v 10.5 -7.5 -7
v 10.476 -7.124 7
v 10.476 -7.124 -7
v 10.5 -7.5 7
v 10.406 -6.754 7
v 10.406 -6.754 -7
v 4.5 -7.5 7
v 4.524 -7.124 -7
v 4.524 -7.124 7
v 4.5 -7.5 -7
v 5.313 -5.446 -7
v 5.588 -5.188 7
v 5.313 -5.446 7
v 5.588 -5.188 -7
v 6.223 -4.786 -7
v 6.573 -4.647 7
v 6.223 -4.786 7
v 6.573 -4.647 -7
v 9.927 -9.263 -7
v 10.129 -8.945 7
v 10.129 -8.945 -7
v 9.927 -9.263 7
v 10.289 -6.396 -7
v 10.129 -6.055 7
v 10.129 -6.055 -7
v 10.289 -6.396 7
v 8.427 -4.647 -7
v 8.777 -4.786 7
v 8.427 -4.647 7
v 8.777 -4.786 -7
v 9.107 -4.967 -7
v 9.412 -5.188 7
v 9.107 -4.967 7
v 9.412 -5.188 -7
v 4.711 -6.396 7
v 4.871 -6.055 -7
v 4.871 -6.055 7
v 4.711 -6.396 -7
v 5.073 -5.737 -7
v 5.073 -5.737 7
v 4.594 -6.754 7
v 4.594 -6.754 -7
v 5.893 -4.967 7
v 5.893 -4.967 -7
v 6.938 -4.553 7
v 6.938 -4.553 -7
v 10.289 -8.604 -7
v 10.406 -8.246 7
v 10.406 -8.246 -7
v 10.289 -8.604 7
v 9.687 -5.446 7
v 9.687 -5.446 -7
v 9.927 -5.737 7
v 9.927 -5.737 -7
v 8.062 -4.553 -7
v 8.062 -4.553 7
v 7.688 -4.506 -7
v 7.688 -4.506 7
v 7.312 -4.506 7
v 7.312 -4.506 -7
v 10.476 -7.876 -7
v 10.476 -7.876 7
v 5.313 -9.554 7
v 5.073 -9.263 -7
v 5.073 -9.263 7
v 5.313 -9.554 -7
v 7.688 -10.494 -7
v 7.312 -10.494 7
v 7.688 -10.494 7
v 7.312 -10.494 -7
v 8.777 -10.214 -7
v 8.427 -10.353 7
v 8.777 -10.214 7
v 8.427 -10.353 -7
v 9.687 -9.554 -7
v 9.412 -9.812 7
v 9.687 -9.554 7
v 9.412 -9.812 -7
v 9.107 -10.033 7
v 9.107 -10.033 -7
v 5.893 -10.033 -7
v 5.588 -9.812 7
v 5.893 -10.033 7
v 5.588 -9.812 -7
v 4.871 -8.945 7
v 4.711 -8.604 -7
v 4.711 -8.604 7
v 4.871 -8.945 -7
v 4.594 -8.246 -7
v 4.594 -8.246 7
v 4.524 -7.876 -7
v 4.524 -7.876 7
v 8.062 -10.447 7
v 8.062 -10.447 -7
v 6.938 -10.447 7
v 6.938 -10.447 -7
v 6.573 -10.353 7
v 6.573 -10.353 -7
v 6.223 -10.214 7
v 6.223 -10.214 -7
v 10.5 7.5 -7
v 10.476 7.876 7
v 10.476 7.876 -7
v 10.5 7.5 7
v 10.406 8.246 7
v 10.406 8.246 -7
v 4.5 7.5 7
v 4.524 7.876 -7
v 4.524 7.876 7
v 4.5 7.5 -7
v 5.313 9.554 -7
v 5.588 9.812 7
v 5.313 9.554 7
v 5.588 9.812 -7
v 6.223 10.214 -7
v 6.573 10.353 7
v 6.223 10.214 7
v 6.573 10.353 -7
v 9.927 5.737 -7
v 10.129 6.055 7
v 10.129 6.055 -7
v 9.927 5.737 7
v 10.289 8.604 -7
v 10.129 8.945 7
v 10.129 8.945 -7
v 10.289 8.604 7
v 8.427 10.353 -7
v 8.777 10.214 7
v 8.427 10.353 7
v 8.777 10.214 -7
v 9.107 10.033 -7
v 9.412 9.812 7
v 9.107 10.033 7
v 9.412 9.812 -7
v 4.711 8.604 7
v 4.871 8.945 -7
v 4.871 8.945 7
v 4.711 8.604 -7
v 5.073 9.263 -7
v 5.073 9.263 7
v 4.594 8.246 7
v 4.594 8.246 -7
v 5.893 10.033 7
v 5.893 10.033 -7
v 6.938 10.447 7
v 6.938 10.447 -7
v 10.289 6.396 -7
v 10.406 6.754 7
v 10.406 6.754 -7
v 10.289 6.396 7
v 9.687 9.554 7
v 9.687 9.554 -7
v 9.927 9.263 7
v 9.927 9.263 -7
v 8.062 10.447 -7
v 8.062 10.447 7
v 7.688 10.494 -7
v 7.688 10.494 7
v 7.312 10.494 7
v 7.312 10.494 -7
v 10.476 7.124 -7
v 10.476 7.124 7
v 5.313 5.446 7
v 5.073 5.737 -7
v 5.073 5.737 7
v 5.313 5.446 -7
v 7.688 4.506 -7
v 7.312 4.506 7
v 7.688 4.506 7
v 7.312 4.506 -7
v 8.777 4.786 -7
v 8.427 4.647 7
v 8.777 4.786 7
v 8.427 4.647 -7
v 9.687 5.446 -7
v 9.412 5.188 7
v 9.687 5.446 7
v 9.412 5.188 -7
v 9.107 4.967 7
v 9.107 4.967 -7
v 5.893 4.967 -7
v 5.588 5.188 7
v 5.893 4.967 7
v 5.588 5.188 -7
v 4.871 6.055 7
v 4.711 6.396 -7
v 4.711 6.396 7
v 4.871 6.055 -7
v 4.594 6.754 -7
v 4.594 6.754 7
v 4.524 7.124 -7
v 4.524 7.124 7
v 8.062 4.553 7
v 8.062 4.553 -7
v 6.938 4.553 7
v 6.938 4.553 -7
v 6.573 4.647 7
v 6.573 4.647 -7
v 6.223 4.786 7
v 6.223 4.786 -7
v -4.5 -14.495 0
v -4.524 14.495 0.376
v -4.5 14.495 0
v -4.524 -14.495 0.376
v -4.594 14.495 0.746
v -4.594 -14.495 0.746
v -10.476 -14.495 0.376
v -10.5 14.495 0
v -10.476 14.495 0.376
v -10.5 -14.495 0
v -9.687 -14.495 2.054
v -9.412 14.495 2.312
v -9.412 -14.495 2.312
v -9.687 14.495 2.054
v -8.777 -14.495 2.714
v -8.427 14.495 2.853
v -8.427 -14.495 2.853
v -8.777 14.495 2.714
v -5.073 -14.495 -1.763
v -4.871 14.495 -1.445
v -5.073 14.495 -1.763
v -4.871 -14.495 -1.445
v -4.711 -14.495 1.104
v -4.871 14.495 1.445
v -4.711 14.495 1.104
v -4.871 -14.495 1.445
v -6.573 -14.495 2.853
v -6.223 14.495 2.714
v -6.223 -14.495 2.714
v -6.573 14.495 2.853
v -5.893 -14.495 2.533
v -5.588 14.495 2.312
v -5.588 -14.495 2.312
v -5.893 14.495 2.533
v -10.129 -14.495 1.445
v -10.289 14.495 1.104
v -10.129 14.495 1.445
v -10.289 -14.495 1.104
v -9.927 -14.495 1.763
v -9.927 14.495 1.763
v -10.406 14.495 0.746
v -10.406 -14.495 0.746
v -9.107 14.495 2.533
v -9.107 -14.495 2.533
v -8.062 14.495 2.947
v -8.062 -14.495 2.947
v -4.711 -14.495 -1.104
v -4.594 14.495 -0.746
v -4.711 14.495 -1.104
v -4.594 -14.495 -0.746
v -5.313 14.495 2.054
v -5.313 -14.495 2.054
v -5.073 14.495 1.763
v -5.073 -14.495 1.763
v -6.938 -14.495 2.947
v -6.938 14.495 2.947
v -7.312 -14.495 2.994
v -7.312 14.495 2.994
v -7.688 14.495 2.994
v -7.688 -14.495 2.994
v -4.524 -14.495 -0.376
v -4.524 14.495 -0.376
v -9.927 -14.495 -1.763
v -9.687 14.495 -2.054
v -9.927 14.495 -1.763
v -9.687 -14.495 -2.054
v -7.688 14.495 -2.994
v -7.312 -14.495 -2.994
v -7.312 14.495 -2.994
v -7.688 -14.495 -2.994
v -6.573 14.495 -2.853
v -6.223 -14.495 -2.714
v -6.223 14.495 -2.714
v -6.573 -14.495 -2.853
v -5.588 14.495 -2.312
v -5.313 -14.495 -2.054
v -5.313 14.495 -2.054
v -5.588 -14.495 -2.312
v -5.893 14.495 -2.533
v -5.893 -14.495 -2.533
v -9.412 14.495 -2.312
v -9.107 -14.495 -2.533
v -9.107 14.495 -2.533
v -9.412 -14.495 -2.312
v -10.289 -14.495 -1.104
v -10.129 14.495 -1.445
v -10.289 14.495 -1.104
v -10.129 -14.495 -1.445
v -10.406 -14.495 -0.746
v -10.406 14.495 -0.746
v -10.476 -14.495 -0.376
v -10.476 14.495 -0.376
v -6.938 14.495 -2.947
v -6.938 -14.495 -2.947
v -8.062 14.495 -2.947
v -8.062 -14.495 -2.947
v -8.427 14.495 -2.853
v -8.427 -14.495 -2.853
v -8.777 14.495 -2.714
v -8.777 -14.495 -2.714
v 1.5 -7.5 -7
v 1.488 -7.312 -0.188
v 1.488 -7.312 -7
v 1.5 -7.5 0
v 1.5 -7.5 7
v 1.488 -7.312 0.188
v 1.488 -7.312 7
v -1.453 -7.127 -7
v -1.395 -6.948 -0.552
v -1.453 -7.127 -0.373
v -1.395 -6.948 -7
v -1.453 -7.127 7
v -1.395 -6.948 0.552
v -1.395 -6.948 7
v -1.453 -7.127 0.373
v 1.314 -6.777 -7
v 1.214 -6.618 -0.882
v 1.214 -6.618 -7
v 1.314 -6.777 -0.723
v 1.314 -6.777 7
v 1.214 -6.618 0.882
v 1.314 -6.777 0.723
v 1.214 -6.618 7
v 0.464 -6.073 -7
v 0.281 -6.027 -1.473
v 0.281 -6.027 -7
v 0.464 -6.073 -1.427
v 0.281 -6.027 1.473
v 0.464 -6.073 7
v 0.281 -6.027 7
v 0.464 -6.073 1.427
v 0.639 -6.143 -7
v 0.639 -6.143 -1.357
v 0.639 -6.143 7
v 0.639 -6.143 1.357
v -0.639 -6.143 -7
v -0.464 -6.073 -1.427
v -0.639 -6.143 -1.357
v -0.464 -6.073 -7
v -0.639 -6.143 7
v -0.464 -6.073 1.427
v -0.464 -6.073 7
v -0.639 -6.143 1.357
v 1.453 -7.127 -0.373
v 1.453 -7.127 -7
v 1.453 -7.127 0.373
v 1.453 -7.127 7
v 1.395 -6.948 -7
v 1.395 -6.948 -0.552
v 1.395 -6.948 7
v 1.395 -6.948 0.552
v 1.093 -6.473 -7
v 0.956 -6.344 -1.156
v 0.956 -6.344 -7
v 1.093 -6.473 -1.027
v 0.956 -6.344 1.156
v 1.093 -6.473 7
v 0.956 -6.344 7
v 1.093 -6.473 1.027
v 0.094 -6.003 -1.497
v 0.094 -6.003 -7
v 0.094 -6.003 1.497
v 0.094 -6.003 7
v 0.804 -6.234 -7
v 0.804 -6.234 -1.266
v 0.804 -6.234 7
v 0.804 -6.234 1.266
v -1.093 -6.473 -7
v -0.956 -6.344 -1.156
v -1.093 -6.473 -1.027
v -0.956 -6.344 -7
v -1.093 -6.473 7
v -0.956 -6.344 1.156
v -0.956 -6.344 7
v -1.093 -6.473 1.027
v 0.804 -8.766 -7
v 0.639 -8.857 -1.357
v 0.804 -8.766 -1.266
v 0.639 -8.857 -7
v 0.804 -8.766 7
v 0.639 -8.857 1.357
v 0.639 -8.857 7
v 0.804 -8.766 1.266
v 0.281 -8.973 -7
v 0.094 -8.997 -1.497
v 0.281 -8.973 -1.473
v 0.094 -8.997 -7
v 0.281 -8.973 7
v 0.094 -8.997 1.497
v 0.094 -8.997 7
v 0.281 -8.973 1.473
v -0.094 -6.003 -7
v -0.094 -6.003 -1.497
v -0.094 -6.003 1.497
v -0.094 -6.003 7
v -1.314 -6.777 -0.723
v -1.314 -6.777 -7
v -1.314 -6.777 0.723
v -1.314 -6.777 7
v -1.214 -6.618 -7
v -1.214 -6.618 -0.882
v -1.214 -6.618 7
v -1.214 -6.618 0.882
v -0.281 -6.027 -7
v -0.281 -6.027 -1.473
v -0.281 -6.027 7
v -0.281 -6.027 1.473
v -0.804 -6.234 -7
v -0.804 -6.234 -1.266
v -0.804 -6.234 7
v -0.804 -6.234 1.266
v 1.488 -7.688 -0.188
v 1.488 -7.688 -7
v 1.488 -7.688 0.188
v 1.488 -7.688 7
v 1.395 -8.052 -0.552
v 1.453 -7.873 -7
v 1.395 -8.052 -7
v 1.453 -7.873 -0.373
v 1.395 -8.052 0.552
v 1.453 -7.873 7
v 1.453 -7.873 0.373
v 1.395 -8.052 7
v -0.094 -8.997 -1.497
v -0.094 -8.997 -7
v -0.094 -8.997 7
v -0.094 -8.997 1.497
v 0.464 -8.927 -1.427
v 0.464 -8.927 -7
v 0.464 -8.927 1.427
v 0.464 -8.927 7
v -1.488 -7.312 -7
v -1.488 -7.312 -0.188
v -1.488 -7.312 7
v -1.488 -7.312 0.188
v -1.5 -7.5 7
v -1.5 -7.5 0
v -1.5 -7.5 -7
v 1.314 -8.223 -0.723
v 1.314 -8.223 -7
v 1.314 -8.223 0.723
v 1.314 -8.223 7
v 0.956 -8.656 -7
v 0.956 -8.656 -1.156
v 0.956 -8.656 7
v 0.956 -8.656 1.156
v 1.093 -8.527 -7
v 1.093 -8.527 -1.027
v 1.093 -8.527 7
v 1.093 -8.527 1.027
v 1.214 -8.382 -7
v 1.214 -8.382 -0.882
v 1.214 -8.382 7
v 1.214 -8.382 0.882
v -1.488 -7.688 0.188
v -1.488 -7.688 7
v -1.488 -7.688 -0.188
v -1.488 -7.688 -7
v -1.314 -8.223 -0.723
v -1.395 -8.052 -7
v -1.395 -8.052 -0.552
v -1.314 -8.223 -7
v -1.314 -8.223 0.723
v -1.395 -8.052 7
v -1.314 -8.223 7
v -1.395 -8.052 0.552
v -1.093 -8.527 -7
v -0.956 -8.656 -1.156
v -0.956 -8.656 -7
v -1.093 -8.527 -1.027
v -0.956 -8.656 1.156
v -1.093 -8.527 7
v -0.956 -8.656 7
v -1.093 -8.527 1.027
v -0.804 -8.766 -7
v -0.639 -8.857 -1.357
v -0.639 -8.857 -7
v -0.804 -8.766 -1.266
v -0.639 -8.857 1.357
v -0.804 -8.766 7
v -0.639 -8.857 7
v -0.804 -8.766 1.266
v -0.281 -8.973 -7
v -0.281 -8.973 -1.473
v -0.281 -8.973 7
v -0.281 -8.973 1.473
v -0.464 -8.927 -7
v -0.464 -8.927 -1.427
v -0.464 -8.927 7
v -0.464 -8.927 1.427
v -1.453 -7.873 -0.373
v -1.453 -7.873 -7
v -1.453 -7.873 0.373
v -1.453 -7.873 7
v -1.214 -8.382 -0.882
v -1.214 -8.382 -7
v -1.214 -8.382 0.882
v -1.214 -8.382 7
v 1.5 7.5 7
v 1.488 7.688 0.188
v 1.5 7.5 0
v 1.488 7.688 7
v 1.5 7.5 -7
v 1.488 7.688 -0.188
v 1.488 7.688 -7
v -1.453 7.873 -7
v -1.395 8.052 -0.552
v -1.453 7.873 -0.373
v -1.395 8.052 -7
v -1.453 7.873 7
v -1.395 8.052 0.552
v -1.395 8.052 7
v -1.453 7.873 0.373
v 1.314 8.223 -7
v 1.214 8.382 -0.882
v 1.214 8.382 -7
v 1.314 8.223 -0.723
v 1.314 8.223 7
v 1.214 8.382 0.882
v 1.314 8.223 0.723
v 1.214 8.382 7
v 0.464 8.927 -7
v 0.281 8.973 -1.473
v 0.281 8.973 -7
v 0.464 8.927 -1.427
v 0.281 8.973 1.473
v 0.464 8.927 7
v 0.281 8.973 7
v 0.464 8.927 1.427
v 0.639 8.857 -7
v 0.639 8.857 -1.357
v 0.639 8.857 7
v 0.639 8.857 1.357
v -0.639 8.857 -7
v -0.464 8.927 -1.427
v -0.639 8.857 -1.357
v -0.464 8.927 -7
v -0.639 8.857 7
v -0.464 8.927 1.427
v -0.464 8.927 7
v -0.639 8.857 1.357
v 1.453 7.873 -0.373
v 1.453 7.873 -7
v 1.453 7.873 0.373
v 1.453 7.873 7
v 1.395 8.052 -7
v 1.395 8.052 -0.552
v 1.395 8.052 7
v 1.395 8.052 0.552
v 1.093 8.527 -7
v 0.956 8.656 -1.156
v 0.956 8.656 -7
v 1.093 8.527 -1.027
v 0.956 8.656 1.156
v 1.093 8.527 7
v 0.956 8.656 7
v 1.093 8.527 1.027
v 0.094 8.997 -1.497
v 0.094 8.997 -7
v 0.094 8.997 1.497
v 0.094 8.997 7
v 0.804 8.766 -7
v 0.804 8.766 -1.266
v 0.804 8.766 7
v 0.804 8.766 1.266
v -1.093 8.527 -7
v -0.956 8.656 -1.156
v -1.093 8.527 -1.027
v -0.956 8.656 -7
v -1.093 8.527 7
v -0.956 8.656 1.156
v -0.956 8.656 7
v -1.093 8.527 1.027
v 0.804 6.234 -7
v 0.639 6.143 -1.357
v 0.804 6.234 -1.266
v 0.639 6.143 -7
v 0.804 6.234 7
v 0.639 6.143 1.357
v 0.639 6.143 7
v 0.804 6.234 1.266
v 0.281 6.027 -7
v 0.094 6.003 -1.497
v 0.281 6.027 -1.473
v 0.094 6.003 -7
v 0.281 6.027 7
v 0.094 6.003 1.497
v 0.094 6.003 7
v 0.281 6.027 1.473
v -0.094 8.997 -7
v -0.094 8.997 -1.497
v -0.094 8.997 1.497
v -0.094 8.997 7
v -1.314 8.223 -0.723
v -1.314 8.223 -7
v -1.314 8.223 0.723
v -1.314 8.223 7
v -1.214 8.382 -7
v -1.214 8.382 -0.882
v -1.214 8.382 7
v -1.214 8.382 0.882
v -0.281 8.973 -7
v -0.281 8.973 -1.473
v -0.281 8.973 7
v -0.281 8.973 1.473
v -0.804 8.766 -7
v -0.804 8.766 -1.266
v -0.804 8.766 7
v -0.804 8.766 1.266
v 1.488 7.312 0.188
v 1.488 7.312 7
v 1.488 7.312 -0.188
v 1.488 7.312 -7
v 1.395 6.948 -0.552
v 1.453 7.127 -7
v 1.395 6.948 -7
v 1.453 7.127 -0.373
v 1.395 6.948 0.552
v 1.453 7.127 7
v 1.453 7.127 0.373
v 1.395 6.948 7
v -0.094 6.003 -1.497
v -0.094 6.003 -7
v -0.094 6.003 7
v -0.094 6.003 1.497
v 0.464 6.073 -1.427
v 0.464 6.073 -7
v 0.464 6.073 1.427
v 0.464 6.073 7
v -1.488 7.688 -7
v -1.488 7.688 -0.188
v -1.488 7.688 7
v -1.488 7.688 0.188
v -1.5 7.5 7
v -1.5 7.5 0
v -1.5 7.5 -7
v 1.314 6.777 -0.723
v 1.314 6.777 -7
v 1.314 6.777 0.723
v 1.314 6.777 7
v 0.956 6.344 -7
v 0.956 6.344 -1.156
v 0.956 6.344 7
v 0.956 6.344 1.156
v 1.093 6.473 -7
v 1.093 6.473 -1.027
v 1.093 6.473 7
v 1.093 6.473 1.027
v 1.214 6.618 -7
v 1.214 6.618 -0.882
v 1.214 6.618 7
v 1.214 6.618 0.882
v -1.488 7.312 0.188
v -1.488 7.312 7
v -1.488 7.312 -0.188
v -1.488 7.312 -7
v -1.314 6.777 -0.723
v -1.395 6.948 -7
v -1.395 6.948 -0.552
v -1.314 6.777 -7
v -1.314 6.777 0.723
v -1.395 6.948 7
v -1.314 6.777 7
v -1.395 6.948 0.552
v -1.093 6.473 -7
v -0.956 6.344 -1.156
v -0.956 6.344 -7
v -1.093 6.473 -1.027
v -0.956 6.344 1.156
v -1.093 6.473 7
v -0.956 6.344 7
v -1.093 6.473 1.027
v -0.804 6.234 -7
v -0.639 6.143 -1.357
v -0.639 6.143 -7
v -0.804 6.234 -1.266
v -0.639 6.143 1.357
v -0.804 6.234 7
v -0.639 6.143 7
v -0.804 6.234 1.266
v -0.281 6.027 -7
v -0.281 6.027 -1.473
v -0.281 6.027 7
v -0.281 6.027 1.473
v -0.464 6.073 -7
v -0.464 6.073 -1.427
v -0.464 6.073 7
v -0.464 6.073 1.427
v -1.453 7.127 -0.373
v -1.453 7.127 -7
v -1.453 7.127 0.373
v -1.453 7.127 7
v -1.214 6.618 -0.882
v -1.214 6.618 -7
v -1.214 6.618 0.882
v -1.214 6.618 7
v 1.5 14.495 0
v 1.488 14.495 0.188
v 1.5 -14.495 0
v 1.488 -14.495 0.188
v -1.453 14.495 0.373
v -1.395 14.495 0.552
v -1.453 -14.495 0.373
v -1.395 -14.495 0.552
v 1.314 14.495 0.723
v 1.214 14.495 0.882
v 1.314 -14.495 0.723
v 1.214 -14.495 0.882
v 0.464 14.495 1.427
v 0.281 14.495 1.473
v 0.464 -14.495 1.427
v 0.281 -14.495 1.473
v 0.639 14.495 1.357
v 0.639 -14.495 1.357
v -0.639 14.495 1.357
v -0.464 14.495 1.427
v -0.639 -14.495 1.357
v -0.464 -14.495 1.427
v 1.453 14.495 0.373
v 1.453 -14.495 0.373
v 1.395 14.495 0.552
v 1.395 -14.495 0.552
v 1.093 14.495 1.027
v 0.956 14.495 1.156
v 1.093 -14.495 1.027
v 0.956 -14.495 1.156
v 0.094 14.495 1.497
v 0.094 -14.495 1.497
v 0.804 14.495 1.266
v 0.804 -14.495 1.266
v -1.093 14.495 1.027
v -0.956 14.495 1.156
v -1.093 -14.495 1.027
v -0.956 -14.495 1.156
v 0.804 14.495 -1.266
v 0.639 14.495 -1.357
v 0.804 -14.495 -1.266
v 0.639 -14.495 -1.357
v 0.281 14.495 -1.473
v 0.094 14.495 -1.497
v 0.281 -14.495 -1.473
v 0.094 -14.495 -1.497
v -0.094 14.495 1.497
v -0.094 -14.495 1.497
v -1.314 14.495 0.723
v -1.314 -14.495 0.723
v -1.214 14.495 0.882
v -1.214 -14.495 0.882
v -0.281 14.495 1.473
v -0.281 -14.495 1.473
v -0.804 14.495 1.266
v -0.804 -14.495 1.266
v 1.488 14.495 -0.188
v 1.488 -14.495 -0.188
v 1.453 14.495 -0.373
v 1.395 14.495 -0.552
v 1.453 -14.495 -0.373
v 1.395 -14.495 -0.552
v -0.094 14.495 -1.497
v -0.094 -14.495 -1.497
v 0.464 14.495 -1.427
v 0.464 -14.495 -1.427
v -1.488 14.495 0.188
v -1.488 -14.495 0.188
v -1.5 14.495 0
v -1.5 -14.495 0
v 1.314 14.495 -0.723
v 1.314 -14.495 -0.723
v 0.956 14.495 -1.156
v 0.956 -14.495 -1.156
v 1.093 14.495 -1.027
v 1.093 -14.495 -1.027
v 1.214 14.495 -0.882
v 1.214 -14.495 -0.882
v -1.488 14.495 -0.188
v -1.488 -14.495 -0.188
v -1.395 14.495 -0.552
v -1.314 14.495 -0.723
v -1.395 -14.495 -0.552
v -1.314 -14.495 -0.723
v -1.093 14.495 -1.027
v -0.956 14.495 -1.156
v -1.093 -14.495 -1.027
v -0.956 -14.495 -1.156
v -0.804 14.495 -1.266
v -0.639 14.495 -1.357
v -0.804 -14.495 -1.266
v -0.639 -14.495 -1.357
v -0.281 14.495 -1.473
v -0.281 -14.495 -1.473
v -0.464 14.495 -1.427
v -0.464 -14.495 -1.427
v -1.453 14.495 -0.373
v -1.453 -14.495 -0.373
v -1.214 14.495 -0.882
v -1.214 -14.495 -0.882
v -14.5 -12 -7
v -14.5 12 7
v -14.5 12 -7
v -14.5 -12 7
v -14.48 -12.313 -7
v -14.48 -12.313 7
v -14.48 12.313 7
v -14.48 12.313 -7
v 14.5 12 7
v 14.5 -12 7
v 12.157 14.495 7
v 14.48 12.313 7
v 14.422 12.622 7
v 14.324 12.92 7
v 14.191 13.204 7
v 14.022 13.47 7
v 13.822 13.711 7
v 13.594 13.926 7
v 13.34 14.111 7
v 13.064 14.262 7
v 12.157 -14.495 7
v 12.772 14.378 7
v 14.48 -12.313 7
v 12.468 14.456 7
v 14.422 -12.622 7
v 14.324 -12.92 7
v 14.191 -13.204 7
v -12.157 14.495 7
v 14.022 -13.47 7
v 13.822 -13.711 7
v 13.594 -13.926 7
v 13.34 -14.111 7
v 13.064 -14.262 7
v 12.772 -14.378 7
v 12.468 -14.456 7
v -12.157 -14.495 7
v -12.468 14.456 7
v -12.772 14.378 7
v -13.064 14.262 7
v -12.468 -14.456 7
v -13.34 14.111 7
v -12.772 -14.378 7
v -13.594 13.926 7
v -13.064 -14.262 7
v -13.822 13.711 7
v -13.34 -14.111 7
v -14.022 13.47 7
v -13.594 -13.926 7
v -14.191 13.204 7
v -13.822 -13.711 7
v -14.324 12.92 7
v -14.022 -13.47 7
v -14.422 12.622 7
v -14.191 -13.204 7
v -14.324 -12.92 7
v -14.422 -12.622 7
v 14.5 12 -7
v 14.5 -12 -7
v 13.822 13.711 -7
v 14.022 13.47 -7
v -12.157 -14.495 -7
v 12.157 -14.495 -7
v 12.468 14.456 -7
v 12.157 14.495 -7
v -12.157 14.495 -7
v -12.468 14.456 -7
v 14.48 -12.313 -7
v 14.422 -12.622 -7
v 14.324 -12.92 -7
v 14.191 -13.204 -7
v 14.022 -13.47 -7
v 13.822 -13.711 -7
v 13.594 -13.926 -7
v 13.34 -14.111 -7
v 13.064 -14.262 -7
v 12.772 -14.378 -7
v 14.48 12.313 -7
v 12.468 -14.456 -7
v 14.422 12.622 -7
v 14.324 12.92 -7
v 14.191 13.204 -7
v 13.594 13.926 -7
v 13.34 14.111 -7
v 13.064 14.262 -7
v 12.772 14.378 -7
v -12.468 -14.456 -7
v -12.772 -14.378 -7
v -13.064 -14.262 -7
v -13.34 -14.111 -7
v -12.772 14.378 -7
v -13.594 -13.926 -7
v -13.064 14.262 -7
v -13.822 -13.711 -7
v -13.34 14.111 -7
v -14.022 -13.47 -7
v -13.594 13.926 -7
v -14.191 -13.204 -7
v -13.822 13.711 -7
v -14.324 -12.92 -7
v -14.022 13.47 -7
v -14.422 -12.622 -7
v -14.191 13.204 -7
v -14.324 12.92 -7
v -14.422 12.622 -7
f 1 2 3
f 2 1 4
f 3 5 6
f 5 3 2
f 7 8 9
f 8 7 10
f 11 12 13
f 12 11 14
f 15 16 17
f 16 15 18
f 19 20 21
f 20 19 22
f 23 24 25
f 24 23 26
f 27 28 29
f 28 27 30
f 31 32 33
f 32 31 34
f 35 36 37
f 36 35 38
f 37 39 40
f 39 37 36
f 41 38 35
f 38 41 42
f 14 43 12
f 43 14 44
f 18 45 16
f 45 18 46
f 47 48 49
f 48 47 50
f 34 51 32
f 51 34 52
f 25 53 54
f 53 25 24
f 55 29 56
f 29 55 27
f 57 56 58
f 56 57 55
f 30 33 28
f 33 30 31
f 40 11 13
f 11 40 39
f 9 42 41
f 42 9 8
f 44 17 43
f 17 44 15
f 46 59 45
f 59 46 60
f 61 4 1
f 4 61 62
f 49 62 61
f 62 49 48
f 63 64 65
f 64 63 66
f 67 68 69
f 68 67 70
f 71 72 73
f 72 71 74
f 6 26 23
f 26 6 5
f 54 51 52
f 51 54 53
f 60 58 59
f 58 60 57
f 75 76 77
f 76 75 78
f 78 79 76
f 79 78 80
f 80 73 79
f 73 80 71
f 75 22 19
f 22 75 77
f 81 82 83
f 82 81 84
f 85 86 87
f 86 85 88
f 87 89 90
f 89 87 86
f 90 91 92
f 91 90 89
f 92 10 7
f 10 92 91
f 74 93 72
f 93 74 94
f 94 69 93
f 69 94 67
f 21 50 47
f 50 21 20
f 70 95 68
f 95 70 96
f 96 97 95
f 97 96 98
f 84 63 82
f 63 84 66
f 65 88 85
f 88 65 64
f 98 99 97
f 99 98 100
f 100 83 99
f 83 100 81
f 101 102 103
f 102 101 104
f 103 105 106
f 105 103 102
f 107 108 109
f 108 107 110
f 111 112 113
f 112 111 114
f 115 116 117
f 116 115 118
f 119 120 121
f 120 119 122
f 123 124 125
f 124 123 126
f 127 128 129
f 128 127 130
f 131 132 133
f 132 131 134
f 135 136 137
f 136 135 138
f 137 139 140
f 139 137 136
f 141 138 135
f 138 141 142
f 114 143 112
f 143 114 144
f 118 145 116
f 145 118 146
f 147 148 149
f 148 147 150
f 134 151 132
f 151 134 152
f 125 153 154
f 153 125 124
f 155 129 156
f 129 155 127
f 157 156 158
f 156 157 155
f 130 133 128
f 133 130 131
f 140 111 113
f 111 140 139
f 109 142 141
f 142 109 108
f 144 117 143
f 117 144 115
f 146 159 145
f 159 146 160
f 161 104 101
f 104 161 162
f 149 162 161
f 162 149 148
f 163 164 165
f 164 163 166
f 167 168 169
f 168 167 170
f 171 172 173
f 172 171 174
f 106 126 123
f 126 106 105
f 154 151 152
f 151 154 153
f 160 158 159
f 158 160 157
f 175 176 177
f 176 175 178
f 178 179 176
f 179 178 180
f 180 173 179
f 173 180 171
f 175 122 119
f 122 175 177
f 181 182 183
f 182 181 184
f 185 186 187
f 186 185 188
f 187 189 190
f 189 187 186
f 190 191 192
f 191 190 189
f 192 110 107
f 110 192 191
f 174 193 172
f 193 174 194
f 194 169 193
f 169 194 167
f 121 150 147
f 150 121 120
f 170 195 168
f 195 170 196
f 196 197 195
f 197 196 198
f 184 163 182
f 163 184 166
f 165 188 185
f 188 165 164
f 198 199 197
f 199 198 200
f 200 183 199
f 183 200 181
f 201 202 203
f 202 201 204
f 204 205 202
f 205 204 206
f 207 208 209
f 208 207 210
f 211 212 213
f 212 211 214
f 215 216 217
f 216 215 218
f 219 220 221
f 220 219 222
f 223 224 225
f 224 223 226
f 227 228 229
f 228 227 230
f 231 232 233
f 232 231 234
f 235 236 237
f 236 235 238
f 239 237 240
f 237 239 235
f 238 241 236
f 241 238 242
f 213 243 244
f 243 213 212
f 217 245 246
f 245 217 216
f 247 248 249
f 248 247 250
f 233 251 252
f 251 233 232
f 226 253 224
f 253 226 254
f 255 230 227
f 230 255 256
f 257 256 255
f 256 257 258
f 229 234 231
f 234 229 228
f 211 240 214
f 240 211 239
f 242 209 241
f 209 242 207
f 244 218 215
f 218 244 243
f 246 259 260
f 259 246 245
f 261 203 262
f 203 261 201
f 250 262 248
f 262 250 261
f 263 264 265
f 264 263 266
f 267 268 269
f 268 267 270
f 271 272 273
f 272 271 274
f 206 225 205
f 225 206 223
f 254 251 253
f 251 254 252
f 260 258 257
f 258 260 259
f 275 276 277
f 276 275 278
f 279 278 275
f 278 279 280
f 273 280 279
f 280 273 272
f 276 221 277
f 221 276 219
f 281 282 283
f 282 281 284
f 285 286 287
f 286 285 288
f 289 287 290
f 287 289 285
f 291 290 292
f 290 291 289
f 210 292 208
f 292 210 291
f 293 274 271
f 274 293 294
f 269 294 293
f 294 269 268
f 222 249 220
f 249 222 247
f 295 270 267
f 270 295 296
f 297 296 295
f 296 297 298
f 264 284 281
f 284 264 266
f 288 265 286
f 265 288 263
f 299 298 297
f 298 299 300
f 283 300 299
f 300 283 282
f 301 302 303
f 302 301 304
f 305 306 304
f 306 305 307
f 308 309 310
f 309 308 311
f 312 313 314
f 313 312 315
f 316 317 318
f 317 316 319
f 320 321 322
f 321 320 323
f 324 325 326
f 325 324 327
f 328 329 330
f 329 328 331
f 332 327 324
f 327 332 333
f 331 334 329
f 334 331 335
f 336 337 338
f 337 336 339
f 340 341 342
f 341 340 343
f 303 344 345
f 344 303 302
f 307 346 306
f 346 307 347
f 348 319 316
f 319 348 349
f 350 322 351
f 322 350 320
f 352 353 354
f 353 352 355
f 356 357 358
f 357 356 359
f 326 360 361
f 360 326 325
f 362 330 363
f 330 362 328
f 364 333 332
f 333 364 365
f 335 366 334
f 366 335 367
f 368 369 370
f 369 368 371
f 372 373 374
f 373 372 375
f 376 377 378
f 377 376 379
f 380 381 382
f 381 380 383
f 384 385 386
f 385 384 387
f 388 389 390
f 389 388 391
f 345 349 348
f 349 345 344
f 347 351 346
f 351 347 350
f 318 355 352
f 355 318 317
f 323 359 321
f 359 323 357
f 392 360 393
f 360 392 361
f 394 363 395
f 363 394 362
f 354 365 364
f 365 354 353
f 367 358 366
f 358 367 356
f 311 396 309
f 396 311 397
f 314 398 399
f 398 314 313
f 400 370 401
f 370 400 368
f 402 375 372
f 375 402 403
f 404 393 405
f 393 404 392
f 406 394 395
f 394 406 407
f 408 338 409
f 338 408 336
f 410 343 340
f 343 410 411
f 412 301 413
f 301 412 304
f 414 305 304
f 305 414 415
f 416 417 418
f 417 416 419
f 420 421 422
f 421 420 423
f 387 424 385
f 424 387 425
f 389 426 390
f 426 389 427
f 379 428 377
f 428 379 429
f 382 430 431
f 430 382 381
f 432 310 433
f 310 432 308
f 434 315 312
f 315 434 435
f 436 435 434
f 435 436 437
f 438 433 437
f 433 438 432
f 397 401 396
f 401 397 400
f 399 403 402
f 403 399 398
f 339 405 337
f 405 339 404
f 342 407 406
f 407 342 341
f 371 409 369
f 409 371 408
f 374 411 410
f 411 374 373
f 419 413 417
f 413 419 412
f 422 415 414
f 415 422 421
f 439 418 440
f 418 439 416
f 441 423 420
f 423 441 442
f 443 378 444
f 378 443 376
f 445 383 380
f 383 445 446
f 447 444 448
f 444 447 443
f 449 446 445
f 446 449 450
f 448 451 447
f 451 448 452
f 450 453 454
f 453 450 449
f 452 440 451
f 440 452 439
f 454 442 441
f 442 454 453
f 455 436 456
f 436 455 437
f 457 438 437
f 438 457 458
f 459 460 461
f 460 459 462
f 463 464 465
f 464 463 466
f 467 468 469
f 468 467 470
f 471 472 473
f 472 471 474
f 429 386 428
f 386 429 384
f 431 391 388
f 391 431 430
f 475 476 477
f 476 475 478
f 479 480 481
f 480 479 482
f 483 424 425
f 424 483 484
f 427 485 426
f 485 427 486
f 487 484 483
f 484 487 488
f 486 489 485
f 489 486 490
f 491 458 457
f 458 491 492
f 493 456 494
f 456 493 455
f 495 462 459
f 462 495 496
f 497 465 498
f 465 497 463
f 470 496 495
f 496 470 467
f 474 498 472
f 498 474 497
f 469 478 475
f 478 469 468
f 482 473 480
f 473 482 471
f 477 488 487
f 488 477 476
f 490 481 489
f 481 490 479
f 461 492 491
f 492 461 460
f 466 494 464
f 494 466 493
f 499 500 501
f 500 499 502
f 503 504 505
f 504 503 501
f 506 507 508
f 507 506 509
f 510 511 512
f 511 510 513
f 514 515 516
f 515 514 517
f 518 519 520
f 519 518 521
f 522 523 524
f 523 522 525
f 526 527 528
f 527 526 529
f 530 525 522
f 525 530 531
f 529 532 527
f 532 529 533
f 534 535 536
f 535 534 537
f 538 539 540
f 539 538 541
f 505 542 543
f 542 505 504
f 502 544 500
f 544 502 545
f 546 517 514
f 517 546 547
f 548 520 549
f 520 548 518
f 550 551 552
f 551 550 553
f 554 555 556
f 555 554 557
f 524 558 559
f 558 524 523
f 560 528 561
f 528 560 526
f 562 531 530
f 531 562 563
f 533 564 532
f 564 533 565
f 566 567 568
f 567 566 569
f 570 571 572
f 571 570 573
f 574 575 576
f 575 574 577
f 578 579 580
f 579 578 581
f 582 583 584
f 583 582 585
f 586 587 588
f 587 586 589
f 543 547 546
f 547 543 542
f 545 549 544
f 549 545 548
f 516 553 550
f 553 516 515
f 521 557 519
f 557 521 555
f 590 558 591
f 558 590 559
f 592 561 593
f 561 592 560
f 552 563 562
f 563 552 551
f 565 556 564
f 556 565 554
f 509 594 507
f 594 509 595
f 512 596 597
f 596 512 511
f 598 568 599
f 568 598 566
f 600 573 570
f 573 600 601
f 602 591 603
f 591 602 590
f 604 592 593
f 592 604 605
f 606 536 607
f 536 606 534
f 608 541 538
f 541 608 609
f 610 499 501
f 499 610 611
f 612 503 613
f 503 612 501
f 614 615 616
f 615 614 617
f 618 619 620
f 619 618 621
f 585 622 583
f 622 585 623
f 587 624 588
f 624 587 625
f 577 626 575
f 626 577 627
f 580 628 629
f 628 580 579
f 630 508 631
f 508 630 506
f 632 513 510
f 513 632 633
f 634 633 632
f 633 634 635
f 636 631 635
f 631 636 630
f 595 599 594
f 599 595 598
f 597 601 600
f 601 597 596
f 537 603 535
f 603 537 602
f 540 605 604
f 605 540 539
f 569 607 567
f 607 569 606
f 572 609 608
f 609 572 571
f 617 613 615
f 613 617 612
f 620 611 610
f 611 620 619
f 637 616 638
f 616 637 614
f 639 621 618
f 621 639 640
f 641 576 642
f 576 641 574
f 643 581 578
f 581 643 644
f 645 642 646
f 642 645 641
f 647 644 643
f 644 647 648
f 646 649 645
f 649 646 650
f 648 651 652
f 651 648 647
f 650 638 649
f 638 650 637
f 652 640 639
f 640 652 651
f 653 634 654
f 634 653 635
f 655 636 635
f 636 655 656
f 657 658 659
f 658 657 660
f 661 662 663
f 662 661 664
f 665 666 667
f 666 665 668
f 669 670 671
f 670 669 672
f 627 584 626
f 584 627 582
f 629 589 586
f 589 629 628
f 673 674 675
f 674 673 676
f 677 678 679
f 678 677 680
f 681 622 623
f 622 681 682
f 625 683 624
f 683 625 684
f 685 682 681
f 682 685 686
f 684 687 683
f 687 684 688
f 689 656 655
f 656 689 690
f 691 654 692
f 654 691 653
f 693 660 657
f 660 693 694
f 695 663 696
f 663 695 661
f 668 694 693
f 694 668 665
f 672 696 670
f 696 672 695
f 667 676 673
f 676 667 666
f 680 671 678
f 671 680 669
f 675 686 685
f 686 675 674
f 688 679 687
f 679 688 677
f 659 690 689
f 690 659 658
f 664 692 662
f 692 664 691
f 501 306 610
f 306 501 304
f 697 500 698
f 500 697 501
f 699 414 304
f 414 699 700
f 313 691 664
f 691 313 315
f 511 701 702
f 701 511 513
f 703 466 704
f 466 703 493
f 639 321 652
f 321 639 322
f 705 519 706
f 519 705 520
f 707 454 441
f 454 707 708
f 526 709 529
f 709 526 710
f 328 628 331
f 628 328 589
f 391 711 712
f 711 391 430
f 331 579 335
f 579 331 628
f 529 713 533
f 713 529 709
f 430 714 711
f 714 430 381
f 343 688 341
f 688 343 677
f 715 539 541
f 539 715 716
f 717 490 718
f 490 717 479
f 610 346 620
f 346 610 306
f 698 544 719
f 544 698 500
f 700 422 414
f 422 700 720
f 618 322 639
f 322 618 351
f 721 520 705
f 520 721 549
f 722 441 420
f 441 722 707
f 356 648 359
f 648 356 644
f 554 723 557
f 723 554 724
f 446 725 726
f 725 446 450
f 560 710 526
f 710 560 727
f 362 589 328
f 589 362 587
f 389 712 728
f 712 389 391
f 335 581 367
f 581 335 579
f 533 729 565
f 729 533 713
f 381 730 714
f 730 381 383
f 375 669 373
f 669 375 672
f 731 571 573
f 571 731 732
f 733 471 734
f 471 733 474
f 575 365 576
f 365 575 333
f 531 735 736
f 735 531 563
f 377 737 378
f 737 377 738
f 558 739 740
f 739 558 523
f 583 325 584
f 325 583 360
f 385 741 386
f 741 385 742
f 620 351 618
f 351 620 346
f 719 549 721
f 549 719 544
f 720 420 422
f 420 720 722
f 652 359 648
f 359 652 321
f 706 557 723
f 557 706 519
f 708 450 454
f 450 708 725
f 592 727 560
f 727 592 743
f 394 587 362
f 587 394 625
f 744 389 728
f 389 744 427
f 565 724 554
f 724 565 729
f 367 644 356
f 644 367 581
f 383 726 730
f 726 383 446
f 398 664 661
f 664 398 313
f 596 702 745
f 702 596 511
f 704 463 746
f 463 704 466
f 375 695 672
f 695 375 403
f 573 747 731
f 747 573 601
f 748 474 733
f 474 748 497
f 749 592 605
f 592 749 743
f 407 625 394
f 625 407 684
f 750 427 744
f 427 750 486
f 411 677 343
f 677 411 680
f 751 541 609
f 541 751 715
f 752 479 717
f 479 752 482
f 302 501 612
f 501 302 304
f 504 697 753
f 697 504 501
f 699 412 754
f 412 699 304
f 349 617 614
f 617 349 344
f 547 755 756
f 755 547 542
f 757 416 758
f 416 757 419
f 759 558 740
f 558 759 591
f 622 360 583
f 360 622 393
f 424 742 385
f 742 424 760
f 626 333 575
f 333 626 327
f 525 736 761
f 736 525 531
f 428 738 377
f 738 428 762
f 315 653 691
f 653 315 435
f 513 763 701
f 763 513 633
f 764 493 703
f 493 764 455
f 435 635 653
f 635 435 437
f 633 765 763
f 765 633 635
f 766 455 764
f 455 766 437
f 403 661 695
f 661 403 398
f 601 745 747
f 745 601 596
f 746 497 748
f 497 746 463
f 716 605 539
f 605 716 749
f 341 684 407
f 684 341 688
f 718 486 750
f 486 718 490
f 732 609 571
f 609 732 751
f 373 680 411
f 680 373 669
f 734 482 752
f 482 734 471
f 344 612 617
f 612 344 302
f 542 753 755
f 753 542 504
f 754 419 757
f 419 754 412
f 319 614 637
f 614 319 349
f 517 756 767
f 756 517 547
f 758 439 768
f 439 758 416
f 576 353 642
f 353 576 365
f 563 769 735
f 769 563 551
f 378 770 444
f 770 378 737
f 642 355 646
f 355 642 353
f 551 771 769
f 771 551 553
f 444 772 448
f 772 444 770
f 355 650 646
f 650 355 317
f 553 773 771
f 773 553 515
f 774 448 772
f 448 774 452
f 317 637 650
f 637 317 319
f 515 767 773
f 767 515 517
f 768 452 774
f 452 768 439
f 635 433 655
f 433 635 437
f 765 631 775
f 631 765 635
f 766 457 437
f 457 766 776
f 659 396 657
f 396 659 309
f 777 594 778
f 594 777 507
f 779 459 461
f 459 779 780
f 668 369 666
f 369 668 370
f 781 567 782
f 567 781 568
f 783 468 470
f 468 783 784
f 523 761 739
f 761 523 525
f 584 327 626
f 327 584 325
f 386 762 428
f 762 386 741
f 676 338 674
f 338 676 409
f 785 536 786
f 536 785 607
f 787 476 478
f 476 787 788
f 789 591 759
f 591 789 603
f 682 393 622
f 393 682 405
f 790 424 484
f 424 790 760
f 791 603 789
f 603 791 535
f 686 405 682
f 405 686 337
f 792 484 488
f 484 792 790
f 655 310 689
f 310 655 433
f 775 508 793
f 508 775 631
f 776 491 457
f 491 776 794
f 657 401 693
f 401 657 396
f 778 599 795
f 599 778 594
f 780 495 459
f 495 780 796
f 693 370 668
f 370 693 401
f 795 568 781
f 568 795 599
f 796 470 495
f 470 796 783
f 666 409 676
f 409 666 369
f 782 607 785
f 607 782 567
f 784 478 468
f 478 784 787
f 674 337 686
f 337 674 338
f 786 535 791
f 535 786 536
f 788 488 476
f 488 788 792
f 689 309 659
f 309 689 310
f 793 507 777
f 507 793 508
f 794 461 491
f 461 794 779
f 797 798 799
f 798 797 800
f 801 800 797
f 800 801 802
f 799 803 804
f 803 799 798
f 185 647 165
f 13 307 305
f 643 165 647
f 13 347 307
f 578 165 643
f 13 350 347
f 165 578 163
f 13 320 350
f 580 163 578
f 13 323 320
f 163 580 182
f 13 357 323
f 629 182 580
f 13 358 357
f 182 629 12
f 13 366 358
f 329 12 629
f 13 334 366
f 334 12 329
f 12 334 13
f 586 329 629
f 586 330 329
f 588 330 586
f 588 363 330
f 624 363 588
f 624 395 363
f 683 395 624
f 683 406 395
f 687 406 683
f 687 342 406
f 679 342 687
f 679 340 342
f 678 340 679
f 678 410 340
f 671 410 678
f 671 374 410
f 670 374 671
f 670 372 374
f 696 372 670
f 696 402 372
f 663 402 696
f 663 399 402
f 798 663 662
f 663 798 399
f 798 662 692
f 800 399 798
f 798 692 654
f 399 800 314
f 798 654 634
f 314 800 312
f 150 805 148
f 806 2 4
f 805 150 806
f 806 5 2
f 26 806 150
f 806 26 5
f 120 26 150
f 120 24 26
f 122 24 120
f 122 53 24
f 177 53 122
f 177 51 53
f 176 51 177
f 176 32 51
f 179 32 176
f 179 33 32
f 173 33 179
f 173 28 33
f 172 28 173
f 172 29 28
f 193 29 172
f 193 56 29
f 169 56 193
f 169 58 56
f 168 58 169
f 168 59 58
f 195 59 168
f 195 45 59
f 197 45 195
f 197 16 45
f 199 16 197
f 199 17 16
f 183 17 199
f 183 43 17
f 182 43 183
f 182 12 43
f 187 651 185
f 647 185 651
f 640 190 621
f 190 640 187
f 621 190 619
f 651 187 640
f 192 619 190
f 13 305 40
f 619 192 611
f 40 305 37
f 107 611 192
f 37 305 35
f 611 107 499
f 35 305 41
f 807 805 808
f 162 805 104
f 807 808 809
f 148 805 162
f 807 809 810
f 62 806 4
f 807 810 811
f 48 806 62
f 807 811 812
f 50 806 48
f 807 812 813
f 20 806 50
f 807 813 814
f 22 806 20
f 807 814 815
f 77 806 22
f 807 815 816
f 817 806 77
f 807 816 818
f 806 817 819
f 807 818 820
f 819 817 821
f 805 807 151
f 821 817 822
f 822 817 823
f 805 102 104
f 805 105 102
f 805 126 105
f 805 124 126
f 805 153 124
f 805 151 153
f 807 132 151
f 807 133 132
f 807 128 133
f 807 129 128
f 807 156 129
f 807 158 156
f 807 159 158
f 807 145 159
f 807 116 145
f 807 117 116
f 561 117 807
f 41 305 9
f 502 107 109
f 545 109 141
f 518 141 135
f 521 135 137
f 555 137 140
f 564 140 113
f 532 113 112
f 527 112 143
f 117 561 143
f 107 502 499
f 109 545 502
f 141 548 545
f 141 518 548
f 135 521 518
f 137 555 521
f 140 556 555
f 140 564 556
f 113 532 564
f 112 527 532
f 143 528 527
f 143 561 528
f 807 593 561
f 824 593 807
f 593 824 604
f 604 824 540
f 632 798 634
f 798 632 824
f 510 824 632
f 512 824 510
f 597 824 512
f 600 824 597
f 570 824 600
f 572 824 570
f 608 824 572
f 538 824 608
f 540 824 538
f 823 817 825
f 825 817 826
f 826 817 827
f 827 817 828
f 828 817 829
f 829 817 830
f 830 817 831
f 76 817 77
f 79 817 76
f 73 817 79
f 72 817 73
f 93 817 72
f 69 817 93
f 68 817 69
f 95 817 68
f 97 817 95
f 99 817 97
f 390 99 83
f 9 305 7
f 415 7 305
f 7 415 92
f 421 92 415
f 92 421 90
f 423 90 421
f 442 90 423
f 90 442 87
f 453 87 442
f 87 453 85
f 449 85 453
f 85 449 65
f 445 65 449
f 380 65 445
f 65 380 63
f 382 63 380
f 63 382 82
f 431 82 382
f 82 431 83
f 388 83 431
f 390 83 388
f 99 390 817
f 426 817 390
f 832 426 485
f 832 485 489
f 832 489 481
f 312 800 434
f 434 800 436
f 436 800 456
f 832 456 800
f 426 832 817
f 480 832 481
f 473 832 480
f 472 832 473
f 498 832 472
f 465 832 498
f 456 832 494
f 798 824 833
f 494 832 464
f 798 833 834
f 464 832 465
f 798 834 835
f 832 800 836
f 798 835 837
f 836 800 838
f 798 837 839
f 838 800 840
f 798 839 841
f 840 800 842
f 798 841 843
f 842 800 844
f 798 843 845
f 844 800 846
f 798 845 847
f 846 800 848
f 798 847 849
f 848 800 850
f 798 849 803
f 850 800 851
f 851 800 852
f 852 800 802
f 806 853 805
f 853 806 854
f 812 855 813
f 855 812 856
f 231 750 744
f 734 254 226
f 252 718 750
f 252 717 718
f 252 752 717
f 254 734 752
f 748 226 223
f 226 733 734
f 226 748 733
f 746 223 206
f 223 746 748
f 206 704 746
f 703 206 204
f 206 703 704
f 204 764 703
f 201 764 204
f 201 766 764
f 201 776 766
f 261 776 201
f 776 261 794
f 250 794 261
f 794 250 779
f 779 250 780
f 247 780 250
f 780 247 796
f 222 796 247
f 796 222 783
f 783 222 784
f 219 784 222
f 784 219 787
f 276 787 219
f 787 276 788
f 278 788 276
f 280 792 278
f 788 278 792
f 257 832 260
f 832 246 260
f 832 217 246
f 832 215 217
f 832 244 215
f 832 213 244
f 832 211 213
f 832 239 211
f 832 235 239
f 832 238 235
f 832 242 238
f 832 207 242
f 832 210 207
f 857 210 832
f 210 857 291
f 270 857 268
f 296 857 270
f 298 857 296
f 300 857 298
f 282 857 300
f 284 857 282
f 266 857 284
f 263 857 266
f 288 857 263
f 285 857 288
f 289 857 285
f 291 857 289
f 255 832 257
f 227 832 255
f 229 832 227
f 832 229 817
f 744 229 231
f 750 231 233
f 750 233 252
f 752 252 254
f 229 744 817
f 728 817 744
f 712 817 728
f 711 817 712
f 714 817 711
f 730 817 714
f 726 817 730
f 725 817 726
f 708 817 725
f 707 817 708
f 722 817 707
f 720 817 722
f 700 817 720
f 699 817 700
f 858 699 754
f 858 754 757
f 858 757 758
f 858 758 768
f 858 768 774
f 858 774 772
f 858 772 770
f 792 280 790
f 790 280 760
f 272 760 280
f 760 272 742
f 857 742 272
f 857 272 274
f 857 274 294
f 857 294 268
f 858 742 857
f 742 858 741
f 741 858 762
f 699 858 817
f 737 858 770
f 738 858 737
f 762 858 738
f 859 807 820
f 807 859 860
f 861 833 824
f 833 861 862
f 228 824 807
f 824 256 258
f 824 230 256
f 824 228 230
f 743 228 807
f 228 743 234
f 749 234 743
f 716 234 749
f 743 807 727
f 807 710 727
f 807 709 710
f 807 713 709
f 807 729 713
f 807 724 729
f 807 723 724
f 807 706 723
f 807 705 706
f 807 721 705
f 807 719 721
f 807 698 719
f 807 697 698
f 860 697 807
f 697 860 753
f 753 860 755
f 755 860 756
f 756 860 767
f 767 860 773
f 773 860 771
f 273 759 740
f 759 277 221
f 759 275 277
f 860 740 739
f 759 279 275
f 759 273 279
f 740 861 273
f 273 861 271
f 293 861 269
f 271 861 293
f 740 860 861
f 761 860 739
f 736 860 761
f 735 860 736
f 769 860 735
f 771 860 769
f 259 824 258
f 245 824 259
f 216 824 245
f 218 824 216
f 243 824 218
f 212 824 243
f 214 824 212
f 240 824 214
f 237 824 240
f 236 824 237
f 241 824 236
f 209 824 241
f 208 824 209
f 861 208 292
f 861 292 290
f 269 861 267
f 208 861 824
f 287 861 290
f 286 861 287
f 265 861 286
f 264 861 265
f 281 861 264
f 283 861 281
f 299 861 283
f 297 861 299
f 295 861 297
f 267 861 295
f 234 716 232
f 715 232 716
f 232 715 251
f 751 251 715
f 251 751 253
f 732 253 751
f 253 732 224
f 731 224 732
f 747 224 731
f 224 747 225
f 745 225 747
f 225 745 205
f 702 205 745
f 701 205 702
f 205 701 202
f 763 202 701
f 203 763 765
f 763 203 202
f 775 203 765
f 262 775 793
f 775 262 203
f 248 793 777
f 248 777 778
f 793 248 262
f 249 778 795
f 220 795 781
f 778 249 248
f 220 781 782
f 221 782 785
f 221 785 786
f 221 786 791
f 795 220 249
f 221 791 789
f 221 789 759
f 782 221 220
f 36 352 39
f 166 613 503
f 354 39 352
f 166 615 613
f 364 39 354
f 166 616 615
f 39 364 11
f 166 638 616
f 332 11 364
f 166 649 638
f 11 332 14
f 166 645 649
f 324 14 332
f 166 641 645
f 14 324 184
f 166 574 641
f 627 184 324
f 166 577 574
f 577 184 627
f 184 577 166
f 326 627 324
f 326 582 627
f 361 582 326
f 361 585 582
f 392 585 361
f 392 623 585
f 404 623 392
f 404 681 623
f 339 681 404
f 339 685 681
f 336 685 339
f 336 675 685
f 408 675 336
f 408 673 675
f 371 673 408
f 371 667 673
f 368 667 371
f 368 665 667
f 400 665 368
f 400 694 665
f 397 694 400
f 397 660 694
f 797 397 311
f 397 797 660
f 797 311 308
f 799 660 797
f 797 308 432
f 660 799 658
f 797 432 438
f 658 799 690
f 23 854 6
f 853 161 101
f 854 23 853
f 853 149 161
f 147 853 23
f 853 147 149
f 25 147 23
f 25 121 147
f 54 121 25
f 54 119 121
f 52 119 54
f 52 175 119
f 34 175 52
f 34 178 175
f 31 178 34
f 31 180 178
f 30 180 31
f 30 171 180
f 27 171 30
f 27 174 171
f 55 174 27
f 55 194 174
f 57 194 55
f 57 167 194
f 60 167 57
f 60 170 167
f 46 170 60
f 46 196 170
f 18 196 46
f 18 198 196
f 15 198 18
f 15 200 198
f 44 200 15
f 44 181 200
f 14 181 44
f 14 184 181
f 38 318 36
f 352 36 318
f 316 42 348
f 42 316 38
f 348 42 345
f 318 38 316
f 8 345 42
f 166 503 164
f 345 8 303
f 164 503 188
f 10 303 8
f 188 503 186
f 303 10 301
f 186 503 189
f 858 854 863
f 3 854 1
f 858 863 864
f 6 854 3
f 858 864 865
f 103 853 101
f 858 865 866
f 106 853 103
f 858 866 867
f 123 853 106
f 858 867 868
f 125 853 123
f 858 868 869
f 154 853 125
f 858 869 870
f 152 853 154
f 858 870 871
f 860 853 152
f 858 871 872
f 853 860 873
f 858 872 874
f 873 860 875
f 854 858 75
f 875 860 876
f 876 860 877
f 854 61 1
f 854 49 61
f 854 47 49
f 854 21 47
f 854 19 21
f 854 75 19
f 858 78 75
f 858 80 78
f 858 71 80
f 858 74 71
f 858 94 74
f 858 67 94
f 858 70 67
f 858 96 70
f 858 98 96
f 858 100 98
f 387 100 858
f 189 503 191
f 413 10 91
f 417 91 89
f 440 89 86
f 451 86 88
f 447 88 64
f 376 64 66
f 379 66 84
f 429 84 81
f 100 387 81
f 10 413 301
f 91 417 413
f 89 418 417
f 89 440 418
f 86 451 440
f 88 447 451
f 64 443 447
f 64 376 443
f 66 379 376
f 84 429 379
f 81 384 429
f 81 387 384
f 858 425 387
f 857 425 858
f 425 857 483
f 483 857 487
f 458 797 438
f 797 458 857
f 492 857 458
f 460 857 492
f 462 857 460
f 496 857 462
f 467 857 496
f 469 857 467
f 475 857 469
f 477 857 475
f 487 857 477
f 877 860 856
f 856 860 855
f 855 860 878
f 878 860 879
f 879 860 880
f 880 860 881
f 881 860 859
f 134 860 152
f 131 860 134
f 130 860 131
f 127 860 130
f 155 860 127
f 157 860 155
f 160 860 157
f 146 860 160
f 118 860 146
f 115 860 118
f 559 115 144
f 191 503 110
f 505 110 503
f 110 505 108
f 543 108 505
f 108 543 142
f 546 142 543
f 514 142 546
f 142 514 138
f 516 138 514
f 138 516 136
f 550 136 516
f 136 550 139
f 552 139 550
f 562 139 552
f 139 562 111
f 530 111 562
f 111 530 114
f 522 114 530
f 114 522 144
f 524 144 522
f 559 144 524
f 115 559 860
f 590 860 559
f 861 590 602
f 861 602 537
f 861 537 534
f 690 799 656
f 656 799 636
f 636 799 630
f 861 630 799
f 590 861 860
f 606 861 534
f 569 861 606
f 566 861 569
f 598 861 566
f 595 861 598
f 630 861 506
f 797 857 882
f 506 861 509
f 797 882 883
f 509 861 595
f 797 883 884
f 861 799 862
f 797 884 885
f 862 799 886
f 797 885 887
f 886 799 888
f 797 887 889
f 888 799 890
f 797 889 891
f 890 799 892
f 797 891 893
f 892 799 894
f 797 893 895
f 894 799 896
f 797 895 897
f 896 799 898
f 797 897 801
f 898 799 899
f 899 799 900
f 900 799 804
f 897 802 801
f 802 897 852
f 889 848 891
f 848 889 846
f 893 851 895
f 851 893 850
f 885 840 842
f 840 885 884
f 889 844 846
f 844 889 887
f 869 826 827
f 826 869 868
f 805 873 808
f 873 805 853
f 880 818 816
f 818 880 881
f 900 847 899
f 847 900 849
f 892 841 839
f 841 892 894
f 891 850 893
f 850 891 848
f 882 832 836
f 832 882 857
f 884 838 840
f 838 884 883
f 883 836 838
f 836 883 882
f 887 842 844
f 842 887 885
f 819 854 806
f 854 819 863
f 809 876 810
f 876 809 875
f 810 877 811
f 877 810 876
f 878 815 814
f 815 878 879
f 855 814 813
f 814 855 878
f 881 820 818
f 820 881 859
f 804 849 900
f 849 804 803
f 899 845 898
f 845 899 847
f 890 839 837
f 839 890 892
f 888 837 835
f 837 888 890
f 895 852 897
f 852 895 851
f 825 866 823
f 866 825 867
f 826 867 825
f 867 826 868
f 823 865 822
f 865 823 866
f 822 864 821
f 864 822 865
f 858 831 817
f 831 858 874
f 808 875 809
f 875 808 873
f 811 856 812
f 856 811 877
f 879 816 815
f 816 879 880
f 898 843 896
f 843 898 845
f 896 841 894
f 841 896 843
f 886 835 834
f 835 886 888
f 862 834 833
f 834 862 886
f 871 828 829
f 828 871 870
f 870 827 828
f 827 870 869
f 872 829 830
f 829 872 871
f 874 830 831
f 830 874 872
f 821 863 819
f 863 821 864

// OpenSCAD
$fn = 50;


difference() {
	union() {
		*color(alpha = 1.0000000000, c = "gray") {
			translate(v = [0, 7, 0]) {
				linear_extrude(height = 1) {
					text(font = "Arial:style=Bold", halign = "center", size = 4.5000000000, text = "COMMENT plate main", valign = "center");
				}
			}
		}
		translate(v = [0, 0, -7.0000000000]) {
			hull() {
				translate(v = [-12.0000000000, 12.0000000000, 0]) {
					cylinder(h = 14, r = 2.5000000000);
				}
				translate(v = [12.0000000000, 12.0000000000, 0]) {
					cylinder(h = 14, r = 2.5000000000);
				}
				translate(v = [-12.0000000000, -12.0000000000, 0]) {
					cylinder(h = 14, r = 2.5000000000);
				}
				translate(v = [12.0000000000, -12.0000000000, 0]) {
					cylinder(h = 14, r = 2.5000000000);
				}
			}
		}
	}
	union() {
		translate(v = [7.5000000000, -7.5000000000, 0.0000000000]) {
			rotate(a = [0, 0, 0]) {
				difference() {
					union() {
						translate(v = [0, 0, -125.0000000000]) {
							cylinder(h = 250, r = 3.0000000000);
						}
					}
					union();
				}
			}
		}
		translate(v = [7.5000000000, 7.5000000000, 0.0000000000]) {
			rotate(a = [0, 0, 0]) {
				difference() {
					union() {
						translate(v = [0, 0, -125.0000000000]) {
							cylinder(h = 250, r = 3.0000000000);
						}
					}
					union();
				}
			}
		}
		translate(v = [-7.5000000000, -7.5000000000, 0.0000000000]) {
			rotate(a = [90, 0, 0]) {
				difference() {
					union() {
						translate(v = [0, 0, -125.0000000000]) {
							cylinder(h = 250, r = 3.0000000000);
						}
					}
					union();
				}
			}
		}
		translate(v = [-7.5000000000, 7.5000000000, 0.0000000000]) {
			rotate(a = [90, 0, 0]) {
				difference() {
					union() {
						translate(v = [0, 0, -125.0000000000]) {
							cylinder(h = 250, r = 3.0000000000);
						}
					}
					union();
				}
			}
		}
		translate(v = [0.0000000000, -7.5000000000, 0.0000000000]) {
			rotate(a = [0, 0, 0]) {
				difference() {
					union() {
						translate(v = [0, 0, -125.0000000000]) {
							cylinder(h = 250, r = 1.5000000000);
						}
					}
					union();
				}
			}
		}
		translate(v = [0.0000000000, 7.5000000000, 0.0000000000]) {
			rotate(a = [0, 0, 0]) {
				difference() {
					union() {
						translate(v = [0, 0, -125.0000000000]) {
							cylinder(h = 250, r = 1.5000000000);
						}
					}
					union();
				}
			}
		}
		translate(v = [0.0000000000, -7.5000000000, 0.0000000000]) {
			rotate(a = [90, 0, 0]) {
				difference() {
					union() {
						translate(v = [0, 0, -125.0000000000]) {
							cylinder(h = 250, r = 1.5000000000);
						}
					}
					union();
				}
			}
		}
		translate(v = [0.0000000000, 7.5000000000, 0.0000000000]) {
			rotate(a = [90, 0, 0]) {
				difference() {
					union() {
						translate(v = [0, 0, -125.0000000000]) {
							cylinder(h = 250, r = 1.5000000000);
						}
					}
					union();
				}
			}
		}
	}
}
